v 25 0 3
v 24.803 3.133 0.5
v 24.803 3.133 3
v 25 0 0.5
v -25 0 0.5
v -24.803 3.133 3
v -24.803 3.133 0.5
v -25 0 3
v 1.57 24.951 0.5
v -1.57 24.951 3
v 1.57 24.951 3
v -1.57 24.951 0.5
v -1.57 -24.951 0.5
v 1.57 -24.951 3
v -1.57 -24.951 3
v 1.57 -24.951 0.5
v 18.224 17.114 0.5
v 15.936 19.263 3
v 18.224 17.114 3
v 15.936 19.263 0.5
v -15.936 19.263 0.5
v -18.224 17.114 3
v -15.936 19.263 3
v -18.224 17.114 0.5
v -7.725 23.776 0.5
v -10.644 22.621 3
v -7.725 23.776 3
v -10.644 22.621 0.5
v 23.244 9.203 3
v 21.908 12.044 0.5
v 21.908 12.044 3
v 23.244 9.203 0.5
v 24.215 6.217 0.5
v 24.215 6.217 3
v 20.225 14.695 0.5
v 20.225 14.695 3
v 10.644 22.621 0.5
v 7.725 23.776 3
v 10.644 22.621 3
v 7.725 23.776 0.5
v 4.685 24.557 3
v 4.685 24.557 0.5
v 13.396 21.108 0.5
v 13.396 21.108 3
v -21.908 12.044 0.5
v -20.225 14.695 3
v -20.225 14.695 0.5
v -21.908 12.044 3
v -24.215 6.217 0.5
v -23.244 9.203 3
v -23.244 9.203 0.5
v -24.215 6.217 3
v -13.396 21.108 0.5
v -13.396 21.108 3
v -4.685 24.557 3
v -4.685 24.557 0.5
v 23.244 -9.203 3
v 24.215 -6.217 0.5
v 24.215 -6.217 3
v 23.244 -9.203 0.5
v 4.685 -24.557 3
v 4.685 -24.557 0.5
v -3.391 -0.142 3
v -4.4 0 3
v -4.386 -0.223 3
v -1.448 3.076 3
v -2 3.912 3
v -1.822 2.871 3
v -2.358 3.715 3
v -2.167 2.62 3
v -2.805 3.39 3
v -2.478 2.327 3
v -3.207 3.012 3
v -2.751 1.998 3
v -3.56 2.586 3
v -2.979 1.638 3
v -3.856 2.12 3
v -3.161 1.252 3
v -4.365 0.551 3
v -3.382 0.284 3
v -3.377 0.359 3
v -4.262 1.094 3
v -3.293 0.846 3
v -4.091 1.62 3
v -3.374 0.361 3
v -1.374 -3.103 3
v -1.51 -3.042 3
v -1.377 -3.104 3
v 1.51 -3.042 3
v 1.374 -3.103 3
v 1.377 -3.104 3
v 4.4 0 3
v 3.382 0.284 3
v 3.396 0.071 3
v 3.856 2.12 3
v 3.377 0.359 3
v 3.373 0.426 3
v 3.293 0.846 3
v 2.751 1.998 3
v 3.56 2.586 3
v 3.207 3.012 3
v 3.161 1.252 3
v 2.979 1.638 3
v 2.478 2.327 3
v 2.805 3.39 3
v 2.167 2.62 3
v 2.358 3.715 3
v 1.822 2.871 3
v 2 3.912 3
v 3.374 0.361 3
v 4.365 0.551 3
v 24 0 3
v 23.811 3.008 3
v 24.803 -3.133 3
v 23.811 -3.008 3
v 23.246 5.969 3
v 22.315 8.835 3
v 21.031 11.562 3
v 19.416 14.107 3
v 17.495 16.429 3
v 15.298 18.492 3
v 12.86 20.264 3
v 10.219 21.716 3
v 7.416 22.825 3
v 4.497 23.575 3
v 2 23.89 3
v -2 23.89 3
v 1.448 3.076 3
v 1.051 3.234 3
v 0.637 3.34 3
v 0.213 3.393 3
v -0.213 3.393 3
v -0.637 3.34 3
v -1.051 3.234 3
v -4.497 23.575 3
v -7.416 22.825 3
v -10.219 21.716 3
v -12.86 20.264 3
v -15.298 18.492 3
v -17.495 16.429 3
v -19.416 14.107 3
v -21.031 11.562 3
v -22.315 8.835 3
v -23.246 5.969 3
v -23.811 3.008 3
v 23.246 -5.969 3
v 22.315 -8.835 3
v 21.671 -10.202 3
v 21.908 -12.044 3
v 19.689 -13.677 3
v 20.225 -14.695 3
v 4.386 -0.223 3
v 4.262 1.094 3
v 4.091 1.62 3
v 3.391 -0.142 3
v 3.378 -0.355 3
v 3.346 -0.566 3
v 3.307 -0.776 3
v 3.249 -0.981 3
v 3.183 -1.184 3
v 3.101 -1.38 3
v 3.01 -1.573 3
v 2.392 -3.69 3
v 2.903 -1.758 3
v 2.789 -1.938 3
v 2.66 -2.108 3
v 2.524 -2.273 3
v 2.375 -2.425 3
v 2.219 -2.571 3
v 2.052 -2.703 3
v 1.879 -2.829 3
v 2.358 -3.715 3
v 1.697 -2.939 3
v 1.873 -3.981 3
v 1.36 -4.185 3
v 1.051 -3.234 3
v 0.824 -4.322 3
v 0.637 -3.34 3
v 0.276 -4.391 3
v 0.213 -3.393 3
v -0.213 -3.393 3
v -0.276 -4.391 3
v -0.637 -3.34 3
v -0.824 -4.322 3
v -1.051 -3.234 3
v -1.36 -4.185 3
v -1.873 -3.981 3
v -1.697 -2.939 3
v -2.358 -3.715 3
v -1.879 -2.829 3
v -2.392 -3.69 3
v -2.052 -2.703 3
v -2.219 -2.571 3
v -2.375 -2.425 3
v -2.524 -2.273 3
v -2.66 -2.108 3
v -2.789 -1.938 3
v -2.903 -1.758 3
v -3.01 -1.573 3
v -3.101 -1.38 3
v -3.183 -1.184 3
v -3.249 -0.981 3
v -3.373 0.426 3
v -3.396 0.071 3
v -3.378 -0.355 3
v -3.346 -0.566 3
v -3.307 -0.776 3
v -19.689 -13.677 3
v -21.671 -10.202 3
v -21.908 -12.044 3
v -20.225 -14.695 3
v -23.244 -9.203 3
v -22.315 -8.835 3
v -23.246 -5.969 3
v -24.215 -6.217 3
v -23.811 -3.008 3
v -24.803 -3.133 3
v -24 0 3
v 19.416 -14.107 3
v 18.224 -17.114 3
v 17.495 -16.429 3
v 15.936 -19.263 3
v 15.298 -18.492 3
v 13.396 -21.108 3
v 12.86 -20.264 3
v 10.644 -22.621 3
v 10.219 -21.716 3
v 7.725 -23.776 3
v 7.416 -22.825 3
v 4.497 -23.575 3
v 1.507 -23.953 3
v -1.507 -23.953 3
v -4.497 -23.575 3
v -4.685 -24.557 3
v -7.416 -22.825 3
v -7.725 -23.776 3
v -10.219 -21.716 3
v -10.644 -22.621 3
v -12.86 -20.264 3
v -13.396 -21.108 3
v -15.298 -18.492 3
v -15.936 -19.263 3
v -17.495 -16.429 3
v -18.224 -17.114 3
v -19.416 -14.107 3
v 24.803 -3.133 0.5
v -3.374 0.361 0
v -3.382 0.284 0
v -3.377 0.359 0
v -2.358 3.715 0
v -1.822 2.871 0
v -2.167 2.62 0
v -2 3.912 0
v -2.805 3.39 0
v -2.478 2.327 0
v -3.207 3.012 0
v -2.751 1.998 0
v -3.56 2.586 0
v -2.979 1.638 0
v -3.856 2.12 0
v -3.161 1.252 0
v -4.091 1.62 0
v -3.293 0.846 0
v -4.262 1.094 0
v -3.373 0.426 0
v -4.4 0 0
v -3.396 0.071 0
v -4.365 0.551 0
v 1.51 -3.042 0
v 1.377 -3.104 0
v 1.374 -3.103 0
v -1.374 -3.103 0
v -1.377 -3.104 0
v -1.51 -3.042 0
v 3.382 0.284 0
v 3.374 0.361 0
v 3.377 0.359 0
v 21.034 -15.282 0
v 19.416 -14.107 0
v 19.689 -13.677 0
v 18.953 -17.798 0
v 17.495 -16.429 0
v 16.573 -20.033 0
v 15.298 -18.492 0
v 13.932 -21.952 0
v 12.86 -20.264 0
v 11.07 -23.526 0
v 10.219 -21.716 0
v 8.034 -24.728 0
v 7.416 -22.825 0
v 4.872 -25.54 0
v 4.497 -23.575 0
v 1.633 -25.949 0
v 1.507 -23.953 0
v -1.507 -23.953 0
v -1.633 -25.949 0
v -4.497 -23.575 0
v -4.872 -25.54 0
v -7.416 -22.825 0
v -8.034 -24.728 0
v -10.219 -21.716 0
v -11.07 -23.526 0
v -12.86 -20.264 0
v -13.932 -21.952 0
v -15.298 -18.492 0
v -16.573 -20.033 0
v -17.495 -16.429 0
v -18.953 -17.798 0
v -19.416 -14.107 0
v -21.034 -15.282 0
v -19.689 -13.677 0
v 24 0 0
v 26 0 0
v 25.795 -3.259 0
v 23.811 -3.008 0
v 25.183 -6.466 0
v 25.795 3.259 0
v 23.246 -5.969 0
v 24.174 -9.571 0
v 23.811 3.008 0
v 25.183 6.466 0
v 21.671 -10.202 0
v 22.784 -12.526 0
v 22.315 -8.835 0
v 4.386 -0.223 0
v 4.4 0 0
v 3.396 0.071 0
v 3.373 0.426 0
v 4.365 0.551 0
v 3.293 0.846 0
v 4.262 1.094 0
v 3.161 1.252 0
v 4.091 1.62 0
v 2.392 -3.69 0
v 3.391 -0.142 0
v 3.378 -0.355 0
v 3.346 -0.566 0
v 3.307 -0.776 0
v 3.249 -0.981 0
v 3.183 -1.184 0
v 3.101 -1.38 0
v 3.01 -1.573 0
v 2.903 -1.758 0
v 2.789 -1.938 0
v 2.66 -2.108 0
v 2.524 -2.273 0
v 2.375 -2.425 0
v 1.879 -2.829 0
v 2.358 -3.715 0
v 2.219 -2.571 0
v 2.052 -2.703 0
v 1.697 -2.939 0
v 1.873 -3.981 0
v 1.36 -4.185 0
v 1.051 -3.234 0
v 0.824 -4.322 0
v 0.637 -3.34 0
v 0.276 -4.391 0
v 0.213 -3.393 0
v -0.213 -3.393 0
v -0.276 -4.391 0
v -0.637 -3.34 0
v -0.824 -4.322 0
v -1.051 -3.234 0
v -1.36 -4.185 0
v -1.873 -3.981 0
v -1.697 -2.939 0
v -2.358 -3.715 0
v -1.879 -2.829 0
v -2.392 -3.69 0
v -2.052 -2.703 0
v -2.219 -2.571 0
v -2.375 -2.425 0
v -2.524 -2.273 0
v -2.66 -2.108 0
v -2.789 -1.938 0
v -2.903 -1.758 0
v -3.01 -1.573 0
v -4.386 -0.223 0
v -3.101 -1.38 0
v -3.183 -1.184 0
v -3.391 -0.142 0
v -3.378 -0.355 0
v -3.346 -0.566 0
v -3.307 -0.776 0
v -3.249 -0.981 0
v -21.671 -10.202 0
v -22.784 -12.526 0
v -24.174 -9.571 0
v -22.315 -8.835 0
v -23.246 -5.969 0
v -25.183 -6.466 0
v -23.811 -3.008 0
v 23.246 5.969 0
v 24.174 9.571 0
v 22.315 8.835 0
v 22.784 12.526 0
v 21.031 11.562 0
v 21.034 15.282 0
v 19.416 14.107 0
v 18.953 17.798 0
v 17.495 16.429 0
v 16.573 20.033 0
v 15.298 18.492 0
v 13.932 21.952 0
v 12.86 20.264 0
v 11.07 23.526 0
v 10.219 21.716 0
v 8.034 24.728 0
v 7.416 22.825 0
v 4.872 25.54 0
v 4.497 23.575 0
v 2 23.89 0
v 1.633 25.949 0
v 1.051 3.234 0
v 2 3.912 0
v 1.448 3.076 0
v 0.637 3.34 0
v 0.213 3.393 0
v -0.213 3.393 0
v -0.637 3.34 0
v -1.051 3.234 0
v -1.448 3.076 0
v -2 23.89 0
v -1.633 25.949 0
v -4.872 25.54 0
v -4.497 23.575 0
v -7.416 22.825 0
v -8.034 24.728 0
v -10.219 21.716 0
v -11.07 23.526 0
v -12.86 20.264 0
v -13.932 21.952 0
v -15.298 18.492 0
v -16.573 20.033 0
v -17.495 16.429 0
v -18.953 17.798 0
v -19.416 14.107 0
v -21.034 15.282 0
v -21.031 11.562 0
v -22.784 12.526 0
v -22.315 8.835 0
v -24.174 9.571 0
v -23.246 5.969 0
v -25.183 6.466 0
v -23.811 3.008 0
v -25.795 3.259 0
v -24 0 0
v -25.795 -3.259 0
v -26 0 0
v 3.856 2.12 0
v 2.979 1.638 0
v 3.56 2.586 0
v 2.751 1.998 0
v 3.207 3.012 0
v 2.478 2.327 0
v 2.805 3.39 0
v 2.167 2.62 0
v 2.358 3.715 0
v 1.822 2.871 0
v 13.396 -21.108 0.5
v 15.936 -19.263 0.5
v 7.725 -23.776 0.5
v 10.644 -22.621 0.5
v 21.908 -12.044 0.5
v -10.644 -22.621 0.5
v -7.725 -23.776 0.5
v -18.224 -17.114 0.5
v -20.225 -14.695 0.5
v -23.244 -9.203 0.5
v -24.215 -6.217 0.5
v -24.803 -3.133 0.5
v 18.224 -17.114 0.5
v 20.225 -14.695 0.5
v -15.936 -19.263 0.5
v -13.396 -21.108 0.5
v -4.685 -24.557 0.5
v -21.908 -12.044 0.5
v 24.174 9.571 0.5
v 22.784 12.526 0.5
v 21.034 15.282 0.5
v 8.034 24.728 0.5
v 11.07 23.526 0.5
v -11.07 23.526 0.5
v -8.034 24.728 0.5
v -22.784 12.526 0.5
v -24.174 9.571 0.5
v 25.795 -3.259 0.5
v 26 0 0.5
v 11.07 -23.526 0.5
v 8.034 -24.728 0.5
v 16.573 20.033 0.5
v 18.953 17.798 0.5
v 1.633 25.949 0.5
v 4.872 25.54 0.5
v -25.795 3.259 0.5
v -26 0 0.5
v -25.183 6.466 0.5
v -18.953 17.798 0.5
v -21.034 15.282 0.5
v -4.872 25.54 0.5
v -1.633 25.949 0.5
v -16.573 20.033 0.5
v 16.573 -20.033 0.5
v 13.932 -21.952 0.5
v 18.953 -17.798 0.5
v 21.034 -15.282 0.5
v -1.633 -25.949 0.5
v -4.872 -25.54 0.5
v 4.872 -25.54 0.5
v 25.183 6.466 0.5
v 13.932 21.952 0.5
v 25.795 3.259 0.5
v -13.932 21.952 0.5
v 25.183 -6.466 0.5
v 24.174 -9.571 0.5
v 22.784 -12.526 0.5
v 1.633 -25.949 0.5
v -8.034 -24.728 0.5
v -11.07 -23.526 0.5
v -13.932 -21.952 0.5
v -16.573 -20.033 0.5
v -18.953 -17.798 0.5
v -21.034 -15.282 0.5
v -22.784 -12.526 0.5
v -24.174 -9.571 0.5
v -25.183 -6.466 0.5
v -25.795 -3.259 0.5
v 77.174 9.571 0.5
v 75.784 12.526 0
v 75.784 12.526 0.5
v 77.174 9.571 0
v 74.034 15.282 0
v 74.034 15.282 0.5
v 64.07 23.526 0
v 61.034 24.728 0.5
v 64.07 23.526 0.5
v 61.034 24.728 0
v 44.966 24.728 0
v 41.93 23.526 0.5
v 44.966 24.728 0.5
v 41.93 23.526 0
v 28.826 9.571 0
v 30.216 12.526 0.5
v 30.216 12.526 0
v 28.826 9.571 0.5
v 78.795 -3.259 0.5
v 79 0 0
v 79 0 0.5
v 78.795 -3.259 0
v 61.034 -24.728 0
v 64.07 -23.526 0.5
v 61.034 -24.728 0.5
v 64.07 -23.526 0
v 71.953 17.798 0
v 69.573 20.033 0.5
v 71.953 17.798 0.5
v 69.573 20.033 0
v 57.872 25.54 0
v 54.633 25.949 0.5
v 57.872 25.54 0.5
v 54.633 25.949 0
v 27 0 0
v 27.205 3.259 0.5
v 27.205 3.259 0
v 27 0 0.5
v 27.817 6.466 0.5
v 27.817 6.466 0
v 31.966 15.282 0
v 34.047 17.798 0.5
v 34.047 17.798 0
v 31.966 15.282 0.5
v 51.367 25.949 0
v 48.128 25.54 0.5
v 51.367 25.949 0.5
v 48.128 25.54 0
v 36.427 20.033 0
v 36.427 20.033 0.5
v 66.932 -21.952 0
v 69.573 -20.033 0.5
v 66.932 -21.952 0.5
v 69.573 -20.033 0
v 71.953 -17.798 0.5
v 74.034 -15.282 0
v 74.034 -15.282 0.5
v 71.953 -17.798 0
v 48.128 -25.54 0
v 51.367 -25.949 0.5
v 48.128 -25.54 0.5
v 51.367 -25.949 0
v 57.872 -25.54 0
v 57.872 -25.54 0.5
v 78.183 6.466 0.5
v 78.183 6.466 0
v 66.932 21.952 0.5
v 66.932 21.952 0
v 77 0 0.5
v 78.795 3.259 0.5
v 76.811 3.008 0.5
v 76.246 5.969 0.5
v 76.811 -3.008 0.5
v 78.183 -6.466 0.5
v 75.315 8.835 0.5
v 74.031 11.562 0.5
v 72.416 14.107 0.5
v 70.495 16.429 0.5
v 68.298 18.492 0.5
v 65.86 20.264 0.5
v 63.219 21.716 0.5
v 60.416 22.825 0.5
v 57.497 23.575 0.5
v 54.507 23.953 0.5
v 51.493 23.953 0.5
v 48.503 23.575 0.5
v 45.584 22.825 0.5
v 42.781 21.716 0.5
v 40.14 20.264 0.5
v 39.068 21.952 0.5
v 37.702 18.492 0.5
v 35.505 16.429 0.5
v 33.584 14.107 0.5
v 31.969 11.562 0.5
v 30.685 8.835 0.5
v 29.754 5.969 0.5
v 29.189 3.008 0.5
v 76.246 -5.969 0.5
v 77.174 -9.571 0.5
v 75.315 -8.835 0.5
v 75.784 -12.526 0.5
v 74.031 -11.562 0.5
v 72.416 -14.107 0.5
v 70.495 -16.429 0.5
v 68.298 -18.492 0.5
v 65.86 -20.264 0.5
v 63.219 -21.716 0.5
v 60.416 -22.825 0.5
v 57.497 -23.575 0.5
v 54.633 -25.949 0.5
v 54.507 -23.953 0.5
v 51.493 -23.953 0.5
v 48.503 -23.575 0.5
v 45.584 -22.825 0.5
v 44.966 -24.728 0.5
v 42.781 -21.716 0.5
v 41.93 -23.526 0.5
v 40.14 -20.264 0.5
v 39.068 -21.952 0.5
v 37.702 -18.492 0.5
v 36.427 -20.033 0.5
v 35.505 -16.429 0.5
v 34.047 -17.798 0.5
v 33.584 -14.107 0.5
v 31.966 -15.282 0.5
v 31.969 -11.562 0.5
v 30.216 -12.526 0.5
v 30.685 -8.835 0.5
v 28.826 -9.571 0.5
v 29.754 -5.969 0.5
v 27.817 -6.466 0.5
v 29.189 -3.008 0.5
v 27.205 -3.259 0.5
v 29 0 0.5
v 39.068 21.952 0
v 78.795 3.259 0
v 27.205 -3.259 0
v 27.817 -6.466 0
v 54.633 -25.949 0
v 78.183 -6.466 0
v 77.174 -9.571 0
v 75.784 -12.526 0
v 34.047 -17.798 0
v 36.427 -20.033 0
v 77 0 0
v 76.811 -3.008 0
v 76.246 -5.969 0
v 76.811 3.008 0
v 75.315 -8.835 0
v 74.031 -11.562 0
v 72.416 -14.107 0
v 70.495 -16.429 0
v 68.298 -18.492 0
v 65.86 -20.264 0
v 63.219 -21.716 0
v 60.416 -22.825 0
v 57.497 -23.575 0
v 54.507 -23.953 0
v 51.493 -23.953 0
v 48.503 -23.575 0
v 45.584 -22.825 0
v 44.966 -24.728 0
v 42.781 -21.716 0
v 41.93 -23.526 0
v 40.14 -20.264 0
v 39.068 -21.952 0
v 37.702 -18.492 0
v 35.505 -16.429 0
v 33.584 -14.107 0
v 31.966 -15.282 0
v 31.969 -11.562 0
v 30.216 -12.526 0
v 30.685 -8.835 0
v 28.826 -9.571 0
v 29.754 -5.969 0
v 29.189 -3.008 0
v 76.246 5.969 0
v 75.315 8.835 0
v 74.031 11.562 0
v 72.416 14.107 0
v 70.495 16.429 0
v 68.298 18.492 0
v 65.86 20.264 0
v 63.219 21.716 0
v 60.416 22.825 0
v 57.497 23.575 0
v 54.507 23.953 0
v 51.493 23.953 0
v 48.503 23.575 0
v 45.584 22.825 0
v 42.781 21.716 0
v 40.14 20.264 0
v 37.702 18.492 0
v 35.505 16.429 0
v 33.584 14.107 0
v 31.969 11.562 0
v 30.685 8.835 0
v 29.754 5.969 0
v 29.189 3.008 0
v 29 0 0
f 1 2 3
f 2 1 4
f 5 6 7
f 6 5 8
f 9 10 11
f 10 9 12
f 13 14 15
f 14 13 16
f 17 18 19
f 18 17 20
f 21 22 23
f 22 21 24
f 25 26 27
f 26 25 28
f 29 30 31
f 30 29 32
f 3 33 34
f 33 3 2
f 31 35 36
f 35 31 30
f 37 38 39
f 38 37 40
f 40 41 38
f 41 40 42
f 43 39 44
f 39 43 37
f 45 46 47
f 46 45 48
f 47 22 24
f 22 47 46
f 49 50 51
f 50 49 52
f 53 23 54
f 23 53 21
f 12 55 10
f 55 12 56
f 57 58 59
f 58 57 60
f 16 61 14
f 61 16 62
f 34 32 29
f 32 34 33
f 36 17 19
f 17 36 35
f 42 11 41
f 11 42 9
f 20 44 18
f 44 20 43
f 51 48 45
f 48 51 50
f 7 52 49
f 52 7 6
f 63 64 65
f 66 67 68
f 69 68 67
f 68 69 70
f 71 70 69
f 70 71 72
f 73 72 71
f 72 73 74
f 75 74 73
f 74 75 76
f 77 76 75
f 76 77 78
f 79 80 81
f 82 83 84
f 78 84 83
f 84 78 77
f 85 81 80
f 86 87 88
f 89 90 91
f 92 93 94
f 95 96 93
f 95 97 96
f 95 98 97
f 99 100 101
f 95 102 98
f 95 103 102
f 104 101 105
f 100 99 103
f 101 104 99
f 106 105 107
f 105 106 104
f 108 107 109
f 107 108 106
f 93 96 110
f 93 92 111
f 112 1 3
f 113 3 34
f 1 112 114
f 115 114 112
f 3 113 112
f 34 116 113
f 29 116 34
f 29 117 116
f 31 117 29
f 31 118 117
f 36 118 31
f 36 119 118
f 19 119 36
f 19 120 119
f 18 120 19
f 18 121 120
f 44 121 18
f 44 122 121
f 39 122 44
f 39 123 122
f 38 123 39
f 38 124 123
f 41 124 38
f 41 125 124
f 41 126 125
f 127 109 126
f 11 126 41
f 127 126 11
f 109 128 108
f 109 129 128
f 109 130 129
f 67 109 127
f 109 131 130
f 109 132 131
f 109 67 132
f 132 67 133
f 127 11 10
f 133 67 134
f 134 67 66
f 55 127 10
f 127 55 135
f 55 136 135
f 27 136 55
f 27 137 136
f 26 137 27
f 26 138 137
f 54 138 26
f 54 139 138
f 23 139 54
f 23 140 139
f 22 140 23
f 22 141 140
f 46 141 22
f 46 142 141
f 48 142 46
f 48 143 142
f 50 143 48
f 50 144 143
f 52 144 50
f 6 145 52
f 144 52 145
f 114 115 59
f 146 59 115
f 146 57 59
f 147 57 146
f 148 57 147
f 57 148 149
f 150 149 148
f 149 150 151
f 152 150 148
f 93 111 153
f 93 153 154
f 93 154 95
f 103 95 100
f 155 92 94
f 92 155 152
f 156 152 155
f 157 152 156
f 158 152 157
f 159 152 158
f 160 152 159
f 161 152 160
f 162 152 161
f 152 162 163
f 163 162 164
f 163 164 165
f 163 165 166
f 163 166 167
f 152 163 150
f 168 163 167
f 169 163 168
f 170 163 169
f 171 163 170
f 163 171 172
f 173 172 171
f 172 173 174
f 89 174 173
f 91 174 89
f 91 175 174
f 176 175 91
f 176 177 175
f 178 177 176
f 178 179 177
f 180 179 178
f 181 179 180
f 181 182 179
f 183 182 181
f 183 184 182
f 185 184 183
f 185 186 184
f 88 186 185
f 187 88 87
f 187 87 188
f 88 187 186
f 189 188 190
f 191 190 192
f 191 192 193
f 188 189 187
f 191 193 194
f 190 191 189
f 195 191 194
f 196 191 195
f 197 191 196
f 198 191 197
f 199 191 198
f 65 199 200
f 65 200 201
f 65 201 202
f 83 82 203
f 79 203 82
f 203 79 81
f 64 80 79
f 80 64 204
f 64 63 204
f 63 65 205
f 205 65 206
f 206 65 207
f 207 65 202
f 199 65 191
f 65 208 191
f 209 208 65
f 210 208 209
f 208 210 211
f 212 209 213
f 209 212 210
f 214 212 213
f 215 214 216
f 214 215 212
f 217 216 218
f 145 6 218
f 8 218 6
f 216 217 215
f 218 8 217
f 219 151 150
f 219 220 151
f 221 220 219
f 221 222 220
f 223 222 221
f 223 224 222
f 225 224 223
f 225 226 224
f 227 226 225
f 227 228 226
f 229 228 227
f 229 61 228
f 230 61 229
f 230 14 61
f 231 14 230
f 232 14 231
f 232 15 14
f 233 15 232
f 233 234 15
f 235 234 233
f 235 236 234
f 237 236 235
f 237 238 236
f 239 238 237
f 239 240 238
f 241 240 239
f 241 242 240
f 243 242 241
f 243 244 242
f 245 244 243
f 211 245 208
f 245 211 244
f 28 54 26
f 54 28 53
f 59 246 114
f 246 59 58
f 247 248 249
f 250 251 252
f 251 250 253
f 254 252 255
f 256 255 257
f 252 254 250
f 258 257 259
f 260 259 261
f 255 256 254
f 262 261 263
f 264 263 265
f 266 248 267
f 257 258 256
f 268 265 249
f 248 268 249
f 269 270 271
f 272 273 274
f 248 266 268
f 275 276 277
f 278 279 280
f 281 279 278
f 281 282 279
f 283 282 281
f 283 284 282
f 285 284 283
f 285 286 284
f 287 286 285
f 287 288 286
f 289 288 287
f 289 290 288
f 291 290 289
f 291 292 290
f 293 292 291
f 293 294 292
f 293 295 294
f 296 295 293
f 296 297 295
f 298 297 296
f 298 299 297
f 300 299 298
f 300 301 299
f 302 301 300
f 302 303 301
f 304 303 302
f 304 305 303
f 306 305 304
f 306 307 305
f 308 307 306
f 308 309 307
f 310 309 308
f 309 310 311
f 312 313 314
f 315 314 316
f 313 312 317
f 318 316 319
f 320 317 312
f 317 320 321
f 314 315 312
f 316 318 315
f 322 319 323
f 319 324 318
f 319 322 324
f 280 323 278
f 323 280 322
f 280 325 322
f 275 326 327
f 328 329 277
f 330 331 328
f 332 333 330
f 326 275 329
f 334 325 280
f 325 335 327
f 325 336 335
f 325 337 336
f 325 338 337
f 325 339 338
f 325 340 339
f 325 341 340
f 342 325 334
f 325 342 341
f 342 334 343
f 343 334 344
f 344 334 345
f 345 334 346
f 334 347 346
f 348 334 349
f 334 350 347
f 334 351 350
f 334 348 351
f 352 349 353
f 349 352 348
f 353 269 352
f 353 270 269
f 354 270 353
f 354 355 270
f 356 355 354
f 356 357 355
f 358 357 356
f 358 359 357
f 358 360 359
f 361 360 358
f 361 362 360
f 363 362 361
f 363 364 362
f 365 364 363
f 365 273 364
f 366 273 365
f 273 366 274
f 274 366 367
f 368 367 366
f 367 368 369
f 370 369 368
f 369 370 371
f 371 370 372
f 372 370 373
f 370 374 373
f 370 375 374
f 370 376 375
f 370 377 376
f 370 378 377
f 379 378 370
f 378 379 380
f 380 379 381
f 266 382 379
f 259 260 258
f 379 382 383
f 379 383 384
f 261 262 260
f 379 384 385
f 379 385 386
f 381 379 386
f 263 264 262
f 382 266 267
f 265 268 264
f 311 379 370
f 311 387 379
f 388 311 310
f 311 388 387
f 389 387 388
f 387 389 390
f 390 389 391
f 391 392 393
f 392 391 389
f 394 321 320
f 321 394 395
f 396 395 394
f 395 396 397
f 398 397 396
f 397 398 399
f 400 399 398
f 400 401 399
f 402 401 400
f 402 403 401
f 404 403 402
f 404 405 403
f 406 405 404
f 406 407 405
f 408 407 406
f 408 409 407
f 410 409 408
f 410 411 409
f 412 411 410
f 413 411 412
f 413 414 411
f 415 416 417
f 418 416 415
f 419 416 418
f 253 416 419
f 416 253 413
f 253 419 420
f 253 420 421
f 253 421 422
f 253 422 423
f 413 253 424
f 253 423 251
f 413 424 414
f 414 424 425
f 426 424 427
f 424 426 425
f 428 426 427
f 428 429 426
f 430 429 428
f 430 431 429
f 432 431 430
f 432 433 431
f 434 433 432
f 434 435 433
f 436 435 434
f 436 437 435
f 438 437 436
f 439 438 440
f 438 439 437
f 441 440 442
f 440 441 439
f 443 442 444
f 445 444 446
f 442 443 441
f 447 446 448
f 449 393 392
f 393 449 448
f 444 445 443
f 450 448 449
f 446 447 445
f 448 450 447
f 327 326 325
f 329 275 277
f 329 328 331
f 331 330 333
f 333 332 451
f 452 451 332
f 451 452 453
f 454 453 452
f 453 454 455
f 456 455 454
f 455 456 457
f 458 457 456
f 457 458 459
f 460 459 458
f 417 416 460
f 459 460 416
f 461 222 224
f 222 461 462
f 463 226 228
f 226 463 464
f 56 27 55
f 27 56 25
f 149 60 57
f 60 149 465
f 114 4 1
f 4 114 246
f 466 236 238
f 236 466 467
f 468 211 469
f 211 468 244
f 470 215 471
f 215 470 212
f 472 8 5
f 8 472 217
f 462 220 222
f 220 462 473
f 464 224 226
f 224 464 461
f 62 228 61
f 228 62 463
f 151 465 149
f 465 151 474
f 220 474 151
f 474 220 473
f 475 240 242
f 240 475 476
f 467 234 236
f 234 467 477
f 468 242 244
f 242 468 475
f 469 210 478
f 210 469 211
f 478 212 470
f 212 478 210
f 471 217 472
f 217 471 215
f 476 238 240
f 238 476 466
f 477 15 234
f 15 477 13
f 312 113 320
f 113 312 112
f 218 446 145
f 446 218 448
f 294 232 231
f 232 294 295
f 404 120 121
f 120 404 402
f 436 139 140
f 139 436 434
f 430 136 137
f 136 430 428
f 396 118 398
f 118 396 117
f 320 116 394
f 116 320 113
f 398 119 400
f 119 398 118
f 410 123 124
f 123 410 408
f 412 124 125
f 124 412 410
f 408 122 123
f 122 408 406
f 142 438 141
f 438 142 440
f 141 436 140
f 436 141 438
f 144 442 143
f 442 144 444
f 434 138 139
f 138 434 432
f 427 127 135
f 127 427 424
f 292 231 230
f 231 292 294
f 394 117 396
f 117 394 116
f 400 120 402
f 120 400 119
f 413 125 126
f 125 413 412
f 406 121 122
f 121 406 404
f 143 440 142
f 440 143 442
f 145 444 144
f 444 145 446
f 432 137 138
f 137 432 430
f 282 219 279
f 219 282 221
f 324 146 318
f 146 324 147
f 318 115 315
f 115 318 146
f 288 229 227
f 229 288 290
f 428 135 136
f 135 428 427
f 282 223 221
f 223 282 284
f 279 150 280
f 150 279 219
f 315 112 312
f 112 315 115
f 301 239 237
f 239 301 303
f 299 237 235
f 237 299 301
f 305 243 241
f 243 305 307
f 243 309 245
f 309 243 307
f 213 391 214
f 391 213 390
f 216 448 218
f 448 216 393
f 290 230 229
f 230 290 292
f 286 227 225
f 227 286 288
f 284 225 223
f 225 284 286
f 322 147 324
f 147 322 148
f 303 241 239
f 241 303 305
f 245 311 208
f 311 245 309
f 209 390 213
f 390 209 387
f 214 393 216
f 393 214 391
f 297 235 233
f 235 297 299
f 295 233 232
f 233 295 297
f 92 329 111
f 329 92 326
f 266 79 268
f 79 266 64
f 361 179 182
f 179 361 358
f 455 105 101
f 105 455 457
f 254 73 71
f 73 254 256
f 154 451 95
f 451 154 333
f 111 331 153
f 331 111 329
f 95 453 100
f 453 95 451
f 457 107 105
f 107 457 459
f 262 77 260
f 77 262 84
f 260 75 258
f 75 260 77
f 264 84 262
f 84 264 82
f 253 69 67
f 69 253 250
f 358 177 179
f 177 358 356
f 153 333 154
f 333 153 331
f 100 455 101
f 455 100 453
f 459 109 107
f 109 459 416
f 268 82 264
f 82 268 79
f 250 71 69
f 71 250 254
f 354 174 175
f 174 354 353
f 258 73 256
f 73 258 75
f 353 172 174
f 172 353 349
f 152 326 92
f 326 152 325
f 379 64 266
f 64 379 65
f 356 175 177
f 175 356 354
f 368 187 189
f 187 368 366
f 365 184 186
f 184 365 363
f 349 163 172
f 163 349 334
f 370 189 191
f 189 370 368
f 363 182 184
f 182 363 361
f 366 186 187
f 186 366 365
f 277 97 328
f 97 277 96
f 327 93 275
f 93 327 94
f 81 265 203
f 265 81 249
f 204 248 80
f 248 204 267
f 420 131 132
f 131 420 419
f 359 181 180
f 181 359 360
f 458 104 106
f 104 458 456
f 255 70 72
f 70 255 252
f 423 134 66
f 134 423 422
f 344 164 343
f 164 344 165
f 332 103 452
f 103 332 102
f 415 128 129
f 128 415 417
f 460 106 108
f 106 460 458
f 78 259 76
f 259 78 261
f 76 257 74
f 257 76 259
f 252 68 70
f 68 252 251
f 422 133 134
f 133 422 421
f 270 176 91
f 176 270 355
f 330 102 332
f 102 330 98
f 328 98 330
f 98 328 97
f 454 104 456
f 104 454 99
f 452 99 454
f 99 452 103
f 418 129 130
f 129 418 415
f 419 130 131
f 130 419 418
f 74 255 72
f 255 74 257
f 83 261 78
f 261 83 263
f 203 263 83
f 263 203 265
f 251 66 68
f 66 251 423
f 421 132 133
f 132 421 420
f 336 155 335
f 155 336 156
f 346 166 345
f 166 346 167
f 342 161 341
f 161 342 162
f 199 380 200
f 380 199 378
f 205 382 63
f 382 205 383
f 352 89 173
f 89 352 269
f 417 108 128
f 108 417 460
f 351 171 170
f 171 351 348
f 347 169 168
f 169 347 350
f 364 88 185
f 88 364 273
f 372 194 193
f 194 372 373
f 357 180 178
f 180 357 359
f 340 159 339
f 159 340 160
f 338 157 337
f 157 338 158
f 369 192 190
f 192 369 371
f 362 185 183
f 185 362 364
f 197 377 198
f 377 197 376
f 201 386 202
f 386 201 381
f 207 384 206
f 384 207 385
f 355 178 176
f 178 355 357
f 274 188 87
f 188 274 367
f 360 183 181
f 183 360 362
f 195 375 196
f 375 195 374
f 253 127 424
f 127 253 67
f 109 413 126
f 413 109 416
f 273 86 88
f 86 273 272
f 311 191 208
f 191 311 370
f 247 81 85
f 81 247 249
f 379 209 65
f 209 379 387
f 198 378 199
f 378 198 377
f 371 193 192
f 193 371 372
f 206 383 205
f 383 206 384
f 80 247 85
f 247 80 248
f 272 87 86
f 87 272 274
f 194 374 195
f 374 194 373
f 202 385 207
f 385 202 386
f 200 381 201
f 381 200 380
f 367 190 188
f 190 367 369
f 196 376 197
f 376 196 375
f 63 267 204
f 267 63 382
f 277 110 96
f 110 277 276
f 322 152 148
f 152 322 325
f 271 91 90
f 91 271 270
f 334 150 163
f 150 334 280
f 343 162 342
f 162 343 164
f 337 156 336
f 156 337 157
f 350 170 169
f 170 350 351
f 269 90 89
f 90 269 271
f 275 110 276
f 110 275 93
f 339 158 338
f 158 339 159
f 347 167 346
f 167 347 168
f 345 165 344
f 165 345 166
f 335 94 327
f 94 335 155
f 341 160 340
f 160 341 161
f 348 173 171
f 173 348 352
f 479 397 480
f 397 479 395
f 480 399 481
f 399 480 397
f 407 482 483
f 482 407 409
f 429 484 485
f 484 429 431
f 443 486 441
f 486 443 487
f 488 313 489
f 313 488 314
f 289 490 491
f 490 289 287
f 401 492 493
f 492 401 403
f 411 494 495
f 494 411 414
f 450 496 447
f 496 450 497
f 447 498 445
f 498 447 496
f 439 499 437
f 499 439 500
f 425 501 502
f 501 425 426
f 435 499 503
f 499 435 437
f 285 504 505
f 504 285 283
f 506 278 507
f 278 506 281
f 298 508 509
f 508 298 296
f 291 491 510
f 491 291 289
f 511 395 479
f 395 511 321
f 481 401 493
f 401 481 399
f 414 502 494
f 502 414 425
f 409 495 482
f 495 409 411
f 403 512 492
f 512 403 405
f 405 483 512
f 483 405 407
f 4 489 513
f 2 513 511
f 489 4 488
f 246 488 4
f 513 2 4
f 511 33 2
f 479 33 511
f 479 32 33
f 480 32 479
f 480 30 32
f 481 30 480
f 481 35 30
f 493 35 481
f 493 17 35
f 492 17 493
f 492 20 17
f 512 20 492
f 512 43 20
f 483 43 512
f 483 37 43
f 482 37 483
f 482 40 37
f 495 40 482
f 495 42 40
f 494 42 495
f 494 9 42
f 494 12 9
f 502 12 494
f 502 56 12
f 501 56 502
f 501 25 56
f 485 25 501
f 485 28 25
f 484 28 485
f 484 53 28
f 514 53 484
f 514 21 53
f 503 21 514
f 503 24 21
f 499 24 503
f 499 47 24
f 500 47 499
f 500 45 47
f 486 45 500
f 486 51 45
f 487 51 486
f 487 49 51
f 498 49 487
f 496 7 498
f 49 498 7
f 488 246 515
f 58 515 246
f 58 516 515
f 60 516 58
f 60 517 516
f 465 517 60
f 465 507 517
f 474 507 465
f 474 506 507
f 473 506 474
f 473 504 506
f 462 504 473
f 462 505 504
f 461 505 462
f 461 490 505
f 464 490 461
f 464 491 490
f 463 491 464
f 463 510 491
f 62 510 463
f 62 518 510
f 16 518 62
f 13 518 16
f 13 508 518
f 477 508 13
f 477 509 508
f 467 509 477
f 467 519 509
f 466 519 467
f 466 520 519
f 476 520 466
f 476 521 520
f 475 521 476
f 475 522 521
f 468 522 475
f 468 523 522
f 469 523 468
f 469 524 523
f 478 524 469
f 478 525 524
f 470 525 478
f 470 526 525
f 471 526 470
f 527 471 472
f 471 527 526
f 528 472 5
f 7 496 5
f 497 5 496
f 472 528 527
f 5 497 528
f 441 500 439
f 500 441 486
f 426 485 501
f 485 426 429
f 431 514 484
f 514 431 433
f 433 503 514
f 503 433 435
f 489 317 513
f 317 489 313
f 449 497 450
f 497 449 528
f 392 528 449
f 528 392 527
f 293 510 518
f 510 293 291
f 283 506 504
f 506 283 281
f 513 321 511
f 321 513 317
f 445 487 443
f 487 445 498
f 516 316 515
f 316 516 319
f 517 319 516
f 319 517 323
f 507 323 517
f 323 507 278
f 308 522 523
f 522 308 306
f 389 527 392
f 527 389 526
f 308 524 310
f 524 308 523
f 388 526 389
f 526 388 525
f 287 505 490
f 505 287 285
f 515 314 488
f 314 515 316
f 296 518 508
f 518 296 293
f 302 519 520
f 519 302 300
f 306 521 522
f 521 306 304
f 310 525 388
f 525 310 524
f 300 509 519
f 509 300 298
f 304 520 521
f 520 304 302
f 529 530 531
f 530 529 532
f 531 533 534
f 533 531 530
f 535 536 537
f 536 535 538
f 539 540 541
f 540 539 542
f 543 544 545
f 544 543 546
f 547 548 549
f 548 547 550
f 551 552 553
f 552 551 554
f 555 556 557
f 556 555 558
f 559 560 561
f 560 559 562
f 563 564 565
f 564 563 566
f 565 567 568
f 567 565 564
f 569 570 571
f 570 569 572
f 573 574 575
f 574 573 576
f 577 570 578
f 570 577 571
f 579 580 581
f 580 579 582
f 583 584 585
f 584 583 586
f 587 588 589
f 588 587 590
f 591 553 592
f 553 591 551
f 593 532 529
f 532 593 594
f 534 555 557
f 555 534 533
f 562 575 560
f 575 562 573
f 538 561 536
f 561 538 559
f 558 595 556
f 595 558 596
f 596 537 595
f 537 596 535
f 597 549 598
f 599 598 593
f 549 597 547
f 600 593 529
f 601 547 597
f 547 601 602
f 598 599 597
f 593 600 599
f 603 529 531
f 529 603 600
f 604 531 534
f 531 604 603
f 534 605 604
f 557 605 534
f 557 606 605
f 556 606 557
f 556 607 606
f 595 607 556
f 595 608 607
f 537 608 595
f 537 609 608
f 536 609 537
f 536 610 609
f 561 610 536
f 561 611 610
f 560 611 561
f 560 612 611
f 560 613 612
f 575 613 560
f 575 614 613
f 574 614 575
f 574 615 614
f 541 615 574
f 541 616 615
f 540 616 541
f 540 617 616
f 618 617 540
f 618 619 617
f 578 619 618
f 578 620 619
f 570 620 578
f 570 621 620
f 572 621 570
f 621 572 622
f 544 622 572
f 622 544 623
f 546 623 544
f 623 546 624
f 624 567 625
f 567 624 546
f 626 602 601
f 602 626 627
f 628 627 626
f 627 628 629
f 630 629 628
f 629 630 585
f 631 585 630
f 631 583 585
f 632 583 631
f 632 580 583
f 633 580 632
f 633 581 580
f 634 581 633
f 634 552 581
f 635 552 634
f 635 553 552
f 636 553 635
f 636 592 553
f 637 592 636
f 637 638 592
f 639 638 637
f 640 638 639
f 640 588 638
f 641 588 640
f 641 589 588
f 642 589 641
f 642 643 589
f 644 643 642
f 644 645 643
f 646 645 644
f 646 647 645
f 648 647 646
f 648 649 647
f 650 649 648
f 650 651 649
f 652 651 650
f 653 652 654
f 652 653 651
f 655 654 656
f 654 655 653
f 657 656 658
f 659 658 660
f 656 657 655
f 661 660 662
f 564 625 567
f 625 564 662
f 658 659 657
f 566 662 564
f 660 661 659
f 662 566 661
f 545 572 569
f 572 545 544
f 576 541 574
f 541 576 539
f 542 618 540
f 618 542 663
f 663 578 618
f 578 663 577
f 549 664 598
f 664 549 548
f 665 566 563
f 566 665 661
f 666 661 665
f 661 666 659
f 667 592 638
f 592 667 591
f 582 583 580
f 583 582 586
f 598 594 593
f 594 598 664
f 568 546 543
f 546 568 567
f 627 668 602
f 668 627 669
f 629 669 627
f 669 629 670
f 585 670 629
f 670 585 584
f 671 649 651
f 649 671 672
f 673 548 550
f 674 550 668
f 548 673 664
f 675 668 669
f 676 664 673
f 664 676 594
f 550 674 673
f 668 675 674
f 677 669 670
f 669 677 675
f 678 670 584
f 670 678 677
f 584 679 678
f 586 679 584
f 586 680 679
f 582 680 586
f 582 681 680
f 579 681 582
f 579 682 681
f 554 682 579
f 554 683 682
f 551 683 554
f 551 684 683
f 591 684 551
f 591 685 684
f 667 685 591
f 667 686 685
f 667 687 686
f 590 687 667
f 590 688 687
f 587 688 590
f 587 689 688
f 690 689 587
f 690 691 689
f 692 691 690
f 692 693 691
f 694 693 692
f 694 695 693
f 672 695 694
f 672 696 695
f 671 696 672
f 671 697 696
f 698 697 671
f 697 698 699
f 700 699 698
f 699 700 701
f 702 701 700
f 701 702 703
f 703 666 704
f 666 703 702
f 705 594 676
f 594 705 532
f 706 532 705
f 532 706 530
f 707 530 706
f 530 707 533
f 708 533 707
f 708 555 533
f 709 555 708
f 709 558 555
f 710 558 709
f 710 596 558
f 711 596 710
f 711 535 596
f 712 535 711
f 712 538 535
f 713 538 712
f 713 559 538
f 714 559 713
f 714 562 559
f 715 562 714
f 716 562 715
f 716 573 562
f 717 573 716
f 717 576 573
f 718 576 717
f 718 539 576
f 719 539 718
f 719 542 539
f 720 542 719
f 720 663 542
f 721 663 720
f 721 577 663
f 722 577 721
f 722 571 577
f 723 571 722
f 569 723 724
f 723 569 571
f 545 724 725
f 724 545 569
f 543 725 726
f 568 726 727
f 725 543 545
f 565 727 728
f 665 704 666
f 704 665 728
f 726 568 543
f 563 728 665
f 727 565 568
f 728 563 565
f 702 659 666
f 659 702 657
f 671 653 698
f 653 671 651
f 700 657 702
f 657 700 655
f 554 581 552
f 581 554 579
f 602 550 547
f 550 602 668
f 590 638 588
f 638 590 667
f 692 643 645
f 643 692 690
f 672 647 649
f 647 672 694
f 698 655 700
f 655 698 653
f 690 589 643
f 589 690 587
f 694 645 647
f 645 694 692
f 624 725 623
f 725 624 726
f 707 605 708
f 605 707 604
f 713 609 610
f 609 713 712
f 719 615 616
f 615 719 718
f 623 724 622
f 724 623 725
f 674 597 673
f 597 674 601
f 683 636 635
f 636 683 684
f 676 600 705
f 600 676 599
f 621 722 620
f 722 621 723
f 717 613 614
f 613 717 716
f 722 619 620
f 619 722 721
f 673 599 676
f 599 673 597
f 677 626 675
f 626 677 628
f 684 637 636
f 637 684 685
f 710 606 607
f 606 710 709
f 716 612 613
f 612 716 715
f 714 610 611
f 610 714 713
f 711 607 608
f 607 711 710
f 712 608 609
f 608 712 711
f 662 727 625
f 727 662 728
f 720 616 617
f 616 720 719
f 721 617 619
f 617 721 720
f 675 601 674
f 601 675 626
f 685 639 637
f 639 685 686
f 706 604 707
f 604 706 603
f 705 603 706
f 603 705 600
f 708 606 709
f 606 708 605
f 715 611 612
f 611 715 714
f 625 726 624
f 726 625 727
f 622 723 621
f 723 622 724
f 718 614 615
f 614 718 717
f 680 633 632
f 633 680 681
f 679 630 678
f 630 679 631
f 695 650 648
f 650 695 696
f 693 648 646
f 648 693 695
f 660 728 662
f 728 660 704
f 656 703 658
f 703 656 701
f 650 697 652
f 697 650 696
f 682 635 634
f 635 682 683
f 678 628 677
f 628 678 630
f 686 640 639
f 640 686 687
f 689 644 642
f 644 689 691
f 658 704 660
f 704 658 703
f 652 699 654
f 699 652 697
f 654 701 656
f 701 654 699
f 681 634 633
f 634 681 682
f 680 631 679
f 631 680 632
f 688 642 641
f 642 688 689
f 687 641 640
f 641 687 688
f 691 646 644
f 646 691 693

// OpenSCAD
flywheel_width = 25;
flywheel_height = 3;

flywheel_outer_width = 1;
flywheel_inner_width = 1;
flywheel_outer_lip = 1;

pot_width = 6.8/2;
strut_width = 4;
strut_hole = 0.75;

//resolution
$fn=50;


module  InnerRim() {
    distanceToInnerRim = flywheel_inner_width + pot_width;
    difference() {
        cylinder(flywheel_height, distanceToInnerRim, distanceToInnerRim, false);    
        cylinder(flywheel_height, pot_width, pot_width, false);
    }
}

//wheel with hole in the middle
module OuterRim( makeTop)    {
    distanceToOuterRim = flywheel_width - flywheel_outer_width ;
    difference() {
        cylinder(flywheel_height, flywheel_width, flywheel_width, false);
        cylinder(flywheel_height, distanceToOuterRim, distanceToOuterRim, false);
    }
    outer_rim_wlip = flywheel_width + flywheel_outer_lip;
     difference() {
         cylinder(0.5, outer_rim_wlip, outer_rim_wlip, false);
         cylinder(flywheel_height, distanceToOuterRim, distanceToOuterRim, false);
    }
    
    if(makeTop) {
        //outer-rim-top-lid
        translate([distanceToOuterRim * 2+ 5, 0, 0])
        difference() {
             cylinder(0.5, outer_rim_wlip, outer_rim_wlip, false);
             cylinder(flywheel_height, distanceToOuterRim, distanceToOuterRim, false);
        }
    }
}

module Struts() {
    rotate([0, 0, 0]) { Strut();
        rotate([0, 0, 120]) { Strut();
            rotate([0, 0, 120]) { Strut();
    } } }
}

module Strut() {
     strut_length = flywheel_width - flywheel_outer_width;
     difference() {
        translate([-strut_width/2, 0, 0]) {
            cube([ strut_width, strut_length, flywheel_height ],false);
        }
        cylinder(flywheel_height, pot_width, pot_width, false);
    }
}

module StrutWithHole() {
     strut_length = flywheel_width - flywheel_outer_width;
    difference() 
    {
        Strut();
        translate([0, strut_length - 5, 0]) {
            cylinder(flywheel_height, strut_hole, strut_hole, false);
        }
    }
}


module HalfOuterRim() {
    difference() {
        OuterRim();
        translate([-flywheel_width, 0, 0], false) {
            cube([flywheel_width * 2,flywheel_width,flywheel_height], false);
        }
    }
}

OuterRim(true);
InnerRim();
Struts();
 
